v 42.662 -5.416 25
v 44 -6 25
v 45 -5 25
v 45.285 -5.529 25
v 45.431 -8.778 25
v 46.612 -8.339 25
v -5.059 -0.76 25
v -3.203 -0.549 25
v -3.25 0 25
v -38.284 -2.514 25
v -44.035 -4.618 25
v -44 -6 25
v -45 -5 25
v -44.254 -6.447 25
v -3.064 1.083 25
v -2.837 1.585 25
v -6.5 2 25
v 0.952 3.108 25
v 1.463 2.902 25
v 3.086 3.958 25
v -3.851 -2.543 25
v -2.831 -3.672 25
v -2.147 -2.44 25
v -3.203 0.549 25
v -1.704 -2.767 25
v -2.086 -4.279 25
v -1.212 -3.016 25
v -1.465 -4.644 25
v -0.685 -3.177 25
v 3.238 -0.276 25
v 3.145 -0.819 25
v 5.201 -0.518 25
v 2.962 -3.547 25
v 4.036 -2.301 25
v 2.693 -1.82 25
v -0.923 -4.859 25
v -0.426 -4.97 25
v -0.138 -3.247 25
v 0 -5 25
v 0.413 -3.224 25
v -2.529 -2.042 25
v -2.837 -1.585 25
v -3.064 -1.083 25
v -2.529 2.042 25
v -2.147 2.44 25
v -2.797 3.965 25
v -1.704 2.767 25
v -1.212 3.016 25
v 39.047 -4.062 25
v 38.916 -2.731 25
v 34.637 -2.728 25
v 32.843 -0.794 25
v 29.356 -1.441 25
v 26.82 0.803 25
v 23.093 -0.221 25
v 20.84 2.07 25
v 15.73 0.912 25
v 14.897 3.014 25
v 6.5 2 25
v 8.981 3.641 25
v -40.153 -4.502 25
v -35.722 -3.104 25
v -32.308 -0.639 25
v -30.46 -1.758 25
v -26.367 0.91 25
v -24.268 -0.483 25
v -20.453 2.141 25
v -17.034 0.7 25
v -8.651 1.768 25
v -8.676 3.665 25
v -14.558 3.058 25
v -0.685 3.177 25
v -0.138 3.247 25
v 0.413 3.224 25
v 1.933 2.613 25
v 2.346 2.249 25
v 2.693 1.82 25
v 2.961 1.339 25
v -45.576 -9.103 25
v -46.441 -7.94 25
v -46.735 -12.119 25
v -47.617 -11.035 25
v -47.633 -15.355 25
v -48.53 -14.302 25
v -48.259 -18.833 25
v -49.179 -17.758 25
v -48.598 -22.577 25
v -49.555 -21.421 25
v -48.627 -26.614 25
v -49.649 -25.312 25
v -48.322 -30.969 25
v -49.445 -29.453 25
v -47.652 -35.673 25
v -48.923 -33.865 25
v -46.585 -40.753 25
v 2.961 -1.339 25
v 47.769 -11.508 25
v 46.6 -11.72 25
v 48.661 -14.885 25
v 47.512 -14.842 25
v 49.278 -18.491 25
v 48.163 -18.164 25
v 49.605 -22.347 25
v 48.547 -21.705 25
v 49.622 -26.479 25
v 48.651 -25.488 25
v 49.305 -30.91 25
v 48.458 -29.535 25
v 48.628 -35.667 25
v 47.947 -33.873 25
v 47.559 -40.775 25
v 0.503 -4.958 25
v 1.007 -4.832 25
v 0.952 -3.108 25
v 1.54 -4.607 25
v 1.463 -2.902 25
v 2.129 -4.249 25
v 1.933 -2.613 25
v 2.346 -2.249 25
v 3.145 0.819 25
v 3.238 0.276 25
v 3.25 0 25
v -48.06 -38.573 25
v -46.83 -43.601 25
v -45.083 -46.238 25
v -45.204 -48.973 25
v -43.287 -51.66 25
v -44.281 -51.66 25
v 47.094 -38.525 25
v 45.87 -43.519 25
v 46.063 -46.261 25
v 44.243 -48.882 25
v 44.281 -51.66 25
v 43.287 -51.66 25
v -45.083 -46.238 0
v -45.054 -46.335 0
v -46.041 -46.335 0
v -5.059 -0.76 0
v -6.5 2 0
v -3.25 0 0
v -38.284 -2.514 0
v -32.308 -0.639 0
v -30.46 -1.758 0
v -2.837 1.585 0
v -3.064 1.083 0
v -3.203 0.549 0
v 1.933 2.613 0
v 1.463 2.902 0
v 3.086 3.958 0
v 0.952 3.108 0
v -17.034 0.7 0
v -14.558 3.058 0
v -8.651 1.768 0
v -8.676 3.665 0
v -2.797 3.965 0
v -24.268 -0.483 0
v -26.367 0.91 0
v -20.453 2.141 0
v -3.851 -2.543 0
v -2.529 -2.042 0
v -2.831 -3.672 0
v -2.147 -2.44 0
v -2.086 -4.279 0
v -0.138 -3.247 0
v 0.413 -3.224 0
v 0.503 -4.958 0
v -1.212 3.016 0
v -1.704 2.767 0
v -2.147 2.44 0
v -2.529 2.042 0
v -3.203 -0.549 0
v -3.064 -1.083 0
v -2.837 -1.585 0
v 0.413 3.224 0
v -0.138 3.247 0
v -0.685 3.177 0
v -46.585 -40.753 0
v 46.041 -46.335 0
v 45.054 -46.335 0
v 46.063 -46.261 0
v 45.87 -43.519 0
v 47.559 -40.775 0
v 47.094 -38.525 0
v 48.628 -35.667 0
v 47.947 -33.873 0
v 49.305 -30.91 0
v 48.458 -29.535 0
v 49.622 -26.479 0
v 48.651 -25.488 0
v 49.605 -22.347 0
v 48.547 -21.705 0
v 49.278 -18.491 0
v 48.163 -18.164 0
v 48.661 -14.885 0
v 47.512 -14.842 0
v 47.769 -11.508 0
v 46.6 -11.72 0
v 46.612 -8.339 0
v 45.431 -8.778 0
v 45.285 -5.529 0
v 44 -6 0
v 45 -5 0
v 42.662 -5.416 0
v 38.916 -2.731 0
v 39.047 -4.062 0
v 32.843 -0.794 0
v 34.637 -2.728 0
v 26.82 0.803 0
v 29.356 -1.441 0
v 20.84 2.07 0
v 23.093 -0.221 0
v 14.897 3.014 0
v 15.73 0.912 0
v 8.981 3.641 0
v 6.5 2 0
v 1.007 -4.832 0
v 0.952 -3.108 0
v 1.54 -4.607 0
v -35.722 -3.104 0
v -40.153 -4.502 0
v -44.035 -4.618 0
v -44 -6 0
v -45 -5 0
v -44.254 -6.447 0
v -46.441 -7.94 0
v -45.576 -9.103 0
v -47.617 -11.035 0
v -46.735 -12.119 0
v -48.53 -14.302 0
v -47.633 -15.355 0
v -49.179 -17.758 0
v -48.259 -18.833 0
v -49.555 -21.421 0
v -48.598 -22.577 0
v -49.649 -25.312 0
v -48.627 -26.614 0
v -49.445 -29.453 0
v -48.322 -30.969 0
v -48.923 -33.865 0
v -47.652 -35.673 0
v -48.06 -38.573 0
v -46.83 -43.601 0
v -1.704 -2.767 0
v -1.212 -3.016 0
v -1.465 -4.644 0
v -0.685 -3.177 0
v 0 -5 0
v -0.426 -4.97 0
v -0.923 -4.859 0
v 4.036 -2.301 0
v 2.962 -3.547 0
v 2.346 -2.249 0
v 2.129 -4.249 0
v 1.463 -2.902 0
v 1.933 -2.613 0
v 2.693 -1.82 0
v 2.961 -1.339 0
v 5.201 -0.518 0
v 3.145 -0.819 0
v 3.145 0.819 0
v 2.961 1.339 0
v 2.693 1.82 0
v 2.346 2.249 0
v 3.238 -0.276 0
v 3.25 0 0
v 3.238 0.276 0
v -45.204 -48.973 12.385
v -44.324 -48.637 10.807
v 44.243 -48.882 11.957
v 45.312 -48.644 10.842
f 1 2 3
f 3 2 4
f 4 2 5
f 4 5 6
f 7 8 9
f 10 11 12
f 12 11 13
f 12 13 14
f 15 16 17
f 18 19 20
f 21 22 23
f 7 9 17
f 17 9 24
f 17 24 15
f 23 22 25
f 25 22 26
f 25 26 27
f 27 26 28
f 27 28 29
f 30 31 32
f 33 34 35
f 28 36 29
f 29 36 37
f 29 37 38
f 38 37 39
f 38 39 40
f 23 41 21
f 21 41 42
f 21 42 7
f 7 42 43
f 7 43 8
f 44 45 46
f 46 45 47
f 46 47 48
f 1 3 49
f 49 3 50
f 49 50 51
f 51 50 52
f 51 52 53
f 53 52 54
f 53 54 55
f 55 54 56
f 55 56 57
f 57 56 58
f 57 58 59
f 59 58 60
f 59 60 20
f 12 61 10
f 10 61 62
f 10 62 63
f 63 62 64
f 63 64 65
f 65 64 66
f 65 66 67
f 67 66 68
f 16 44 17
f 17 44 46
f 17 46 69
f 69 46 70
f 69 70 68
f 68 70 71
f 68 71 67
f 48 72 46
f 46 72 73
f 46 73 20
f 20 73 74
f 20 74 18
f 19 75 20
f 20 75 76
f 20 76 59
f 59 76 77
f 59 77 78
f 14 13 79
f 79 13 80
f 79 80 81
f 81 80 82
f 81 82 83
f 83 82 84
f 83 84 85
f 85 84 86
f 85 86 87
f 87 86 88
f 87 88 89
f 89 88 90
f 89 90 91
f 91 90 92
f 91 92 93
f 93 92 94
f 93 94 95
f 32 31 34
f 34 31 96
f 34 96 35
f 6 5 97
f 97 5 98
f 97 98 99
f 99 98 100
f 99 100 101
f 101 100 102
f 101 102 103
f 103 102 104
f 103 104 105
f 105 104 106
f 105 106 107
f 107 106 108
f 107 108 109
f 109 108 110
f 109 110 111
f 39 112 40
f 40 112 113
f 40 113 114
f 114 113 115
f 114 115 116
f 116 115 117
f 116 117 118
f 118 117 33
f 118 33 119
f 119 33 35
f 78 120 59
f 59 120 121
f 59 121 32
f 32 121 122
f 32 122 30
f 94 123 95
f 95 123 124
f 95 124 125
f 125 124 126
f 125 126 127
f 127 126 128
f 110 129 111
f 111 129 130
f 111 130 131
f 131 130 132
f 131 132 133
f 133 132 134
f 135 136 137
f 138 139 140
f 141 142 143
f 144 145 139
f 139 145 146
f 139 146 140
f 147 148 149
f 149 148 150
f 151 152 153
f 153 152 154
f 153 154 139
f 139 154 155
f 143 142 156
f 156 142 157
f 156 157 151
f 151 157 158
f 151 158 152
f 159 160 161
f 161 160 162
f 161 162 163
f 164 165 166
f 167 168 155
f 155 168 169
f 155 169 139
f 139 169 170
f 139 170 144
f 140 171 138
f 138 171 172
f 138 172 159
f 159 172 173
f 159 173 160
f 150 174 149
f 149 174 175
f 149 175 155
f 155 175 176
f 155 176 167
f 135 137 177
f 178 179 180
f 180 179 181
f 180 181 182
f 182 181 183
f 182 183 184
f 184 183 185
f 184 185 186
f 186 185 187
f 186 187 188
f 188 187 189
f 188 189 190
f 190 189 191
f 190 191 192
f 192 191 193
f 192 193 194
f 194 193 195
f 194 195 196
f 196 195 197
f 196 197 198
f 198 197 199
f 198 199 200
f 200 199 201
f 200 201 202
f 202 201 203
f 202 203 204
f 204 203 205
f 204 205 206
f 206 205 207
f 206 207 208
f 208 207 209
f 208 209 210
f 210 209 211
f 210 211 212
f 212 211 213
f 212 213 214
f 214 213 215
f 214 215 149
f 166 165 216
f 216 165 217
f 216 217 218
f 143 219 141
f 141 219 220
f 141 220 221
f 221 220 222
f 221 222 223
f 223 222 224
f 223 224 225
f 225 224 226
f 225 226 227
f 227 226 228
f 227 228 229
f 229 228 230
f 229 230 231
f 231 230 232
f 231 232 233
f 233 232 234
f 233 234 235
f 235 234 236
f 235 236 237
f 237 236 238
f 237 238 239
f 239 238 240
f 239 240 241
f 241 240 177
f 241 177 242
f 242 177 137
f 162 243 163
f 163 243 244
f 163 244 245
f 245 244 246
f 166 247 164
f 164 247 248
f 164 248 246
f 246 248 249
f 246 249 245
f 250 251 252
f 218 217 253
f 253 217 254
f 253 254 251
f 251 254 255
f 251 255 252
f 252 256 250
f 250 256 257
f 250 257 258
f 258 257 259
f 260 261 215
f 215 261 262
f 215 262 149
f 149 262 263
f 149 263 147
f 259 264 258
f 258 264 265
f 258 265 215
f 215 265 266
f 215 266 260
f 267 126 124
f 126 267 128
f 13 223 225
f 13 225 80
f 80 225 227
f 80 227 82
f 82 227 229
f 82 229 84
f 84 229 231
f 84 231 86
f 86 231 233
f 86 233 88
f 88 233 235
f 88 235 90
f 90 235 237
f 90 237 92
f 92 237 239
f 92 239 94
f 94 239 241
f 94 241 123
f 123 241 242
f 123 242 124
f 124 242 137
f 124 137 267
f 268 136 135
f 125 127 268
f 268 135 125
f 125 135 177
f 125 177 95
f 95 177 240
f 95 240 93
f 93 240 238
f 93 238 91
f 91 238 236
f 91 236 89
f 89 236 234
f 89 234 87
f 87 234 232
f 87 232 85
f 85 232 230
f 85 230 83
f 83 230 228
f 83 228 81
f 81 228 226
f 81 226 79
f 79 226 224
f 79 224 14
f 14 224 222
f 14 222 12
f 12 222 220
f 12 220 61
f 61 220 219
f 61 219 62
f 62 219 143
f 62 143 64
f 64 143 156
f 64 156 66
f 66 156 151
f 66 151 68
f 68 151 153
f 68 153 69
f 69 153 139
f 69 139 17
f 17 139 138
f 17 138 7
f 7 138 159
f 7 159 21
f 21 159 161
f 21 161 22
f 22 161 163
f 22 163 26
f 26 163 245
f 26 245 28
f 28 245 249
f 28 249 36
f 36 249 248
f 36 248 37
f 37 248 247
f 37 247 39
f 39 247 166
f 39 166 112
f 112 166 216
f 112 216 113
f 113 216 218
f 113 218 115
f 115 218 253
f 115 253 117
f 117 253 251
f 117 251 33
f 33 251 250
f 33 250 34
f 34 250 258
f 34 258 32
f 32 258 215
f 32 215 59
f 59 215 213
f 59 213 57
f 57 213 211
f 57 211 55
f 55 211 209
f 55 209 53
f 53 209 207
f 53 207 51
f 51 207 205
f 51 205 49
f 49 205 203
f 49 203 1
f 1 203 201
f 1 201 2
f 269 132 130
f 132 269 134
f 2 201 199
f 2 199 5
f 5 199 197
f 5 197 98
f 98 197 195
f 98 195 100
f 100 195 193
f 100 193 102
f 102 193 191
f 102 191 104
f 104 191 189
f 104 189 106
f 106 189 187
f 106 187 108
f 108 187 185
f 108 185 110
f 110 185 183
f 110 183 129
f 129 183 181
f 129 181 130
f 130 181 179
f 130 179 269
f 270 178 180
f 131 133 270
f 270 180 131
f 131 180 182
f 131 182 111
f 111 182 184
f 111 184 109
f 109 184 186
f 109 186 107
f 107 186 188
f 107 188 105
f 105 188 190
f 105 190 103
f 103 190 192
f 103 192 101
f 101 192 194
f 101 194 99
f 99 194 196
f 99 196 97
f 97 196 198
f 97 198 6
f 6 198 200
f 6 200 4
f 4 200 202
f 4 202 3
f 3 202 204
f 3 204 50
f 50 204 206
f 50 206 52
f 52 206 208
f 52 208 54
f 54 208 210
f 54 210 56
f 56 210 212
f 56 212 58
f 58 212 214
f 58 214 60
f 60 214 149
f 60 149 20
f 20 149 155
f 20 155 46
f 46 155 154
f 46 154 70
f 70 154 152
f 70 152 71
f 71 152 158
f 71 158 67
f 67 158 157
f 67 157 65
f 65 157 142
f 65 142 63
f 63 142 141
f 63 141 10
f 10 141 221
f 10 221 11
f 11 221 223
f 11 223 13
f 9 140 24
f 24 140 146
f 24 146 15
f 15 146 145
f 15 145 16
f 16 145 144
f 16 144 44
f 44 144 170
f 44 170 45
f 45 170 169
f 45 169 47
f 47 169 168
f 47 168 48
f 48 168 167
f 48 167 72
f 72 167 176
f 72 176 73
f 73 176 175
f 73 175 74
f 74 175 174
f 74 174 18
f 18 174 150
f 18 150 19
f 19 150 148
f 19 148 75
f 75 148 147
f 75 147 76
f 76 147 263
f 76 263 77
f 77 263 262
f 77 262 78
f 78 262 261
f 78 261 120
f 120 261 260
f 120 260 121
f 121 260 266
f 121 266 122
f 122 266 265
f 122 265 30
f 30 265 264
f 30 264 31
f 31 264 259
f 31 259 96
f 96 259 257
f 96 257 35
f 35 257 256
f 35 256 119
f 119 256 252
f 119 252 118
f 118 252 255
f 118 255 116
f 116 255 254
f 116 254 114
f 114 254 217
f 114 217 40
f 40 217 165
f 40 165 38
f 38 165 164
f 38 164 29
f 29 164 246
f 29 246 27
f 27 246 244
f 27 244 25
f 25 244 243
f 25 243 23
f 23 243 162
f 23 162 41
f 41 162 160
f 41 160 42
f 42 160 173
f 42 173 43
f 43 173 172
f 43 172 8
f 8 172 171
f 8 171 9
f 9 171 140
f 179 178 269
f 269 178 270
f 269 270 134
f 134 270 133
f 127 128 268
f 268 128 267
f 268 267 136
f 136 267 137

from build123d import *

# Parameters (mm, degrees)
SKETCH_1_R               = 3.25
EXTRUDE_1_DEPTH          = 25
CUT_EXTRUDE_1_DEPTH      = 82.79550394
CUT_EXTRUDE_1_DEPTH_BACK = 82.79550394


with BuildPart() as part:
    # 草圖1 → 填料-伸長1 (new body)
    with BuildSketch(Plane.XY):
        with BuildLine():
            Line((-41, -60), (-40, -60))
            add(Edge.make_bspline(
                [(-44, -6), (-55, -25), (-40, -60)],
                knots=[0, 0, 0, 1, 1, 1], degree=2))
            add(Edge.make_bspline(
                [(-6.5, 2), (-31.607950909, -0.616387712), (-44, -6)],
                knots=[0, 0, 0, 1, 1, 1], degree=2))
            add(Edge.make_bspline(
                [(-6.5, 2), (0, -12), (6.5, 2)],
                knots=[0, 0, 0, 1, 1, 1], degree=2))
            add(Edge.make_bspline(
                [(6.5, 2), (32.228671013, -0.616387712), (44, -6)],
                knots=[0, 0, 0, 1, 1, 1], degree=2))
            add(Edge.make_bspline(
                [(44, -6), (55, -25), (40, -60)],
                knots=[0, 0, 0, 1, 1, 1], degree=2))
            Line((40, -60), (41, -60))
            add(Edge.make_bspline(
                [(45, -5), (56, -25), (41, -60)],
                knots=[0, 0, 0, 1, 1, 1], degree=2))
            add(Edge.make_bspline(
                [(-45, -5), (0, 13), (45, -5)],
                knots=[0, 0, 0, 1, 1, 1], degree=2))
            add(Edge.make_bspline(
                [(-45, -5), (-56, -25), (-41, -60)],
                knots=[0, 0, 0, 1, 1, 1], degree=2))
        make_face()
        Circle(SKETCH_1_R, mode=Mode.SUBTRACT)
    extrude(amount=EXTRUDE_1_DEPTH)

    # 草圖2 → 除料-伸長1 (cut, two sides: drawn at the far end of the back side and taken through both)
    with BuildSketch(Plane(origin=(0, 0, 0), x_dir=(0, 0, -1), z_dir=(1, 0, 0)).offset(-CUT_EXTRUDE_1_DEPTH_BACK)):
        Polygon((-28.906277967, -52.492311819), (4.067188518, -45.468378129), (5.936036077, -63.083878207), (-26.90117602, -70.571484262), (-30.384906988, -68.381487837), align=None)
    extrude(amount=CUT_EXTRUDE_1_DEPTH + CUT_EXTRUDE_1_DEPTH_BACK, mode=Mode.SUBTRACT)


solid = part.part
